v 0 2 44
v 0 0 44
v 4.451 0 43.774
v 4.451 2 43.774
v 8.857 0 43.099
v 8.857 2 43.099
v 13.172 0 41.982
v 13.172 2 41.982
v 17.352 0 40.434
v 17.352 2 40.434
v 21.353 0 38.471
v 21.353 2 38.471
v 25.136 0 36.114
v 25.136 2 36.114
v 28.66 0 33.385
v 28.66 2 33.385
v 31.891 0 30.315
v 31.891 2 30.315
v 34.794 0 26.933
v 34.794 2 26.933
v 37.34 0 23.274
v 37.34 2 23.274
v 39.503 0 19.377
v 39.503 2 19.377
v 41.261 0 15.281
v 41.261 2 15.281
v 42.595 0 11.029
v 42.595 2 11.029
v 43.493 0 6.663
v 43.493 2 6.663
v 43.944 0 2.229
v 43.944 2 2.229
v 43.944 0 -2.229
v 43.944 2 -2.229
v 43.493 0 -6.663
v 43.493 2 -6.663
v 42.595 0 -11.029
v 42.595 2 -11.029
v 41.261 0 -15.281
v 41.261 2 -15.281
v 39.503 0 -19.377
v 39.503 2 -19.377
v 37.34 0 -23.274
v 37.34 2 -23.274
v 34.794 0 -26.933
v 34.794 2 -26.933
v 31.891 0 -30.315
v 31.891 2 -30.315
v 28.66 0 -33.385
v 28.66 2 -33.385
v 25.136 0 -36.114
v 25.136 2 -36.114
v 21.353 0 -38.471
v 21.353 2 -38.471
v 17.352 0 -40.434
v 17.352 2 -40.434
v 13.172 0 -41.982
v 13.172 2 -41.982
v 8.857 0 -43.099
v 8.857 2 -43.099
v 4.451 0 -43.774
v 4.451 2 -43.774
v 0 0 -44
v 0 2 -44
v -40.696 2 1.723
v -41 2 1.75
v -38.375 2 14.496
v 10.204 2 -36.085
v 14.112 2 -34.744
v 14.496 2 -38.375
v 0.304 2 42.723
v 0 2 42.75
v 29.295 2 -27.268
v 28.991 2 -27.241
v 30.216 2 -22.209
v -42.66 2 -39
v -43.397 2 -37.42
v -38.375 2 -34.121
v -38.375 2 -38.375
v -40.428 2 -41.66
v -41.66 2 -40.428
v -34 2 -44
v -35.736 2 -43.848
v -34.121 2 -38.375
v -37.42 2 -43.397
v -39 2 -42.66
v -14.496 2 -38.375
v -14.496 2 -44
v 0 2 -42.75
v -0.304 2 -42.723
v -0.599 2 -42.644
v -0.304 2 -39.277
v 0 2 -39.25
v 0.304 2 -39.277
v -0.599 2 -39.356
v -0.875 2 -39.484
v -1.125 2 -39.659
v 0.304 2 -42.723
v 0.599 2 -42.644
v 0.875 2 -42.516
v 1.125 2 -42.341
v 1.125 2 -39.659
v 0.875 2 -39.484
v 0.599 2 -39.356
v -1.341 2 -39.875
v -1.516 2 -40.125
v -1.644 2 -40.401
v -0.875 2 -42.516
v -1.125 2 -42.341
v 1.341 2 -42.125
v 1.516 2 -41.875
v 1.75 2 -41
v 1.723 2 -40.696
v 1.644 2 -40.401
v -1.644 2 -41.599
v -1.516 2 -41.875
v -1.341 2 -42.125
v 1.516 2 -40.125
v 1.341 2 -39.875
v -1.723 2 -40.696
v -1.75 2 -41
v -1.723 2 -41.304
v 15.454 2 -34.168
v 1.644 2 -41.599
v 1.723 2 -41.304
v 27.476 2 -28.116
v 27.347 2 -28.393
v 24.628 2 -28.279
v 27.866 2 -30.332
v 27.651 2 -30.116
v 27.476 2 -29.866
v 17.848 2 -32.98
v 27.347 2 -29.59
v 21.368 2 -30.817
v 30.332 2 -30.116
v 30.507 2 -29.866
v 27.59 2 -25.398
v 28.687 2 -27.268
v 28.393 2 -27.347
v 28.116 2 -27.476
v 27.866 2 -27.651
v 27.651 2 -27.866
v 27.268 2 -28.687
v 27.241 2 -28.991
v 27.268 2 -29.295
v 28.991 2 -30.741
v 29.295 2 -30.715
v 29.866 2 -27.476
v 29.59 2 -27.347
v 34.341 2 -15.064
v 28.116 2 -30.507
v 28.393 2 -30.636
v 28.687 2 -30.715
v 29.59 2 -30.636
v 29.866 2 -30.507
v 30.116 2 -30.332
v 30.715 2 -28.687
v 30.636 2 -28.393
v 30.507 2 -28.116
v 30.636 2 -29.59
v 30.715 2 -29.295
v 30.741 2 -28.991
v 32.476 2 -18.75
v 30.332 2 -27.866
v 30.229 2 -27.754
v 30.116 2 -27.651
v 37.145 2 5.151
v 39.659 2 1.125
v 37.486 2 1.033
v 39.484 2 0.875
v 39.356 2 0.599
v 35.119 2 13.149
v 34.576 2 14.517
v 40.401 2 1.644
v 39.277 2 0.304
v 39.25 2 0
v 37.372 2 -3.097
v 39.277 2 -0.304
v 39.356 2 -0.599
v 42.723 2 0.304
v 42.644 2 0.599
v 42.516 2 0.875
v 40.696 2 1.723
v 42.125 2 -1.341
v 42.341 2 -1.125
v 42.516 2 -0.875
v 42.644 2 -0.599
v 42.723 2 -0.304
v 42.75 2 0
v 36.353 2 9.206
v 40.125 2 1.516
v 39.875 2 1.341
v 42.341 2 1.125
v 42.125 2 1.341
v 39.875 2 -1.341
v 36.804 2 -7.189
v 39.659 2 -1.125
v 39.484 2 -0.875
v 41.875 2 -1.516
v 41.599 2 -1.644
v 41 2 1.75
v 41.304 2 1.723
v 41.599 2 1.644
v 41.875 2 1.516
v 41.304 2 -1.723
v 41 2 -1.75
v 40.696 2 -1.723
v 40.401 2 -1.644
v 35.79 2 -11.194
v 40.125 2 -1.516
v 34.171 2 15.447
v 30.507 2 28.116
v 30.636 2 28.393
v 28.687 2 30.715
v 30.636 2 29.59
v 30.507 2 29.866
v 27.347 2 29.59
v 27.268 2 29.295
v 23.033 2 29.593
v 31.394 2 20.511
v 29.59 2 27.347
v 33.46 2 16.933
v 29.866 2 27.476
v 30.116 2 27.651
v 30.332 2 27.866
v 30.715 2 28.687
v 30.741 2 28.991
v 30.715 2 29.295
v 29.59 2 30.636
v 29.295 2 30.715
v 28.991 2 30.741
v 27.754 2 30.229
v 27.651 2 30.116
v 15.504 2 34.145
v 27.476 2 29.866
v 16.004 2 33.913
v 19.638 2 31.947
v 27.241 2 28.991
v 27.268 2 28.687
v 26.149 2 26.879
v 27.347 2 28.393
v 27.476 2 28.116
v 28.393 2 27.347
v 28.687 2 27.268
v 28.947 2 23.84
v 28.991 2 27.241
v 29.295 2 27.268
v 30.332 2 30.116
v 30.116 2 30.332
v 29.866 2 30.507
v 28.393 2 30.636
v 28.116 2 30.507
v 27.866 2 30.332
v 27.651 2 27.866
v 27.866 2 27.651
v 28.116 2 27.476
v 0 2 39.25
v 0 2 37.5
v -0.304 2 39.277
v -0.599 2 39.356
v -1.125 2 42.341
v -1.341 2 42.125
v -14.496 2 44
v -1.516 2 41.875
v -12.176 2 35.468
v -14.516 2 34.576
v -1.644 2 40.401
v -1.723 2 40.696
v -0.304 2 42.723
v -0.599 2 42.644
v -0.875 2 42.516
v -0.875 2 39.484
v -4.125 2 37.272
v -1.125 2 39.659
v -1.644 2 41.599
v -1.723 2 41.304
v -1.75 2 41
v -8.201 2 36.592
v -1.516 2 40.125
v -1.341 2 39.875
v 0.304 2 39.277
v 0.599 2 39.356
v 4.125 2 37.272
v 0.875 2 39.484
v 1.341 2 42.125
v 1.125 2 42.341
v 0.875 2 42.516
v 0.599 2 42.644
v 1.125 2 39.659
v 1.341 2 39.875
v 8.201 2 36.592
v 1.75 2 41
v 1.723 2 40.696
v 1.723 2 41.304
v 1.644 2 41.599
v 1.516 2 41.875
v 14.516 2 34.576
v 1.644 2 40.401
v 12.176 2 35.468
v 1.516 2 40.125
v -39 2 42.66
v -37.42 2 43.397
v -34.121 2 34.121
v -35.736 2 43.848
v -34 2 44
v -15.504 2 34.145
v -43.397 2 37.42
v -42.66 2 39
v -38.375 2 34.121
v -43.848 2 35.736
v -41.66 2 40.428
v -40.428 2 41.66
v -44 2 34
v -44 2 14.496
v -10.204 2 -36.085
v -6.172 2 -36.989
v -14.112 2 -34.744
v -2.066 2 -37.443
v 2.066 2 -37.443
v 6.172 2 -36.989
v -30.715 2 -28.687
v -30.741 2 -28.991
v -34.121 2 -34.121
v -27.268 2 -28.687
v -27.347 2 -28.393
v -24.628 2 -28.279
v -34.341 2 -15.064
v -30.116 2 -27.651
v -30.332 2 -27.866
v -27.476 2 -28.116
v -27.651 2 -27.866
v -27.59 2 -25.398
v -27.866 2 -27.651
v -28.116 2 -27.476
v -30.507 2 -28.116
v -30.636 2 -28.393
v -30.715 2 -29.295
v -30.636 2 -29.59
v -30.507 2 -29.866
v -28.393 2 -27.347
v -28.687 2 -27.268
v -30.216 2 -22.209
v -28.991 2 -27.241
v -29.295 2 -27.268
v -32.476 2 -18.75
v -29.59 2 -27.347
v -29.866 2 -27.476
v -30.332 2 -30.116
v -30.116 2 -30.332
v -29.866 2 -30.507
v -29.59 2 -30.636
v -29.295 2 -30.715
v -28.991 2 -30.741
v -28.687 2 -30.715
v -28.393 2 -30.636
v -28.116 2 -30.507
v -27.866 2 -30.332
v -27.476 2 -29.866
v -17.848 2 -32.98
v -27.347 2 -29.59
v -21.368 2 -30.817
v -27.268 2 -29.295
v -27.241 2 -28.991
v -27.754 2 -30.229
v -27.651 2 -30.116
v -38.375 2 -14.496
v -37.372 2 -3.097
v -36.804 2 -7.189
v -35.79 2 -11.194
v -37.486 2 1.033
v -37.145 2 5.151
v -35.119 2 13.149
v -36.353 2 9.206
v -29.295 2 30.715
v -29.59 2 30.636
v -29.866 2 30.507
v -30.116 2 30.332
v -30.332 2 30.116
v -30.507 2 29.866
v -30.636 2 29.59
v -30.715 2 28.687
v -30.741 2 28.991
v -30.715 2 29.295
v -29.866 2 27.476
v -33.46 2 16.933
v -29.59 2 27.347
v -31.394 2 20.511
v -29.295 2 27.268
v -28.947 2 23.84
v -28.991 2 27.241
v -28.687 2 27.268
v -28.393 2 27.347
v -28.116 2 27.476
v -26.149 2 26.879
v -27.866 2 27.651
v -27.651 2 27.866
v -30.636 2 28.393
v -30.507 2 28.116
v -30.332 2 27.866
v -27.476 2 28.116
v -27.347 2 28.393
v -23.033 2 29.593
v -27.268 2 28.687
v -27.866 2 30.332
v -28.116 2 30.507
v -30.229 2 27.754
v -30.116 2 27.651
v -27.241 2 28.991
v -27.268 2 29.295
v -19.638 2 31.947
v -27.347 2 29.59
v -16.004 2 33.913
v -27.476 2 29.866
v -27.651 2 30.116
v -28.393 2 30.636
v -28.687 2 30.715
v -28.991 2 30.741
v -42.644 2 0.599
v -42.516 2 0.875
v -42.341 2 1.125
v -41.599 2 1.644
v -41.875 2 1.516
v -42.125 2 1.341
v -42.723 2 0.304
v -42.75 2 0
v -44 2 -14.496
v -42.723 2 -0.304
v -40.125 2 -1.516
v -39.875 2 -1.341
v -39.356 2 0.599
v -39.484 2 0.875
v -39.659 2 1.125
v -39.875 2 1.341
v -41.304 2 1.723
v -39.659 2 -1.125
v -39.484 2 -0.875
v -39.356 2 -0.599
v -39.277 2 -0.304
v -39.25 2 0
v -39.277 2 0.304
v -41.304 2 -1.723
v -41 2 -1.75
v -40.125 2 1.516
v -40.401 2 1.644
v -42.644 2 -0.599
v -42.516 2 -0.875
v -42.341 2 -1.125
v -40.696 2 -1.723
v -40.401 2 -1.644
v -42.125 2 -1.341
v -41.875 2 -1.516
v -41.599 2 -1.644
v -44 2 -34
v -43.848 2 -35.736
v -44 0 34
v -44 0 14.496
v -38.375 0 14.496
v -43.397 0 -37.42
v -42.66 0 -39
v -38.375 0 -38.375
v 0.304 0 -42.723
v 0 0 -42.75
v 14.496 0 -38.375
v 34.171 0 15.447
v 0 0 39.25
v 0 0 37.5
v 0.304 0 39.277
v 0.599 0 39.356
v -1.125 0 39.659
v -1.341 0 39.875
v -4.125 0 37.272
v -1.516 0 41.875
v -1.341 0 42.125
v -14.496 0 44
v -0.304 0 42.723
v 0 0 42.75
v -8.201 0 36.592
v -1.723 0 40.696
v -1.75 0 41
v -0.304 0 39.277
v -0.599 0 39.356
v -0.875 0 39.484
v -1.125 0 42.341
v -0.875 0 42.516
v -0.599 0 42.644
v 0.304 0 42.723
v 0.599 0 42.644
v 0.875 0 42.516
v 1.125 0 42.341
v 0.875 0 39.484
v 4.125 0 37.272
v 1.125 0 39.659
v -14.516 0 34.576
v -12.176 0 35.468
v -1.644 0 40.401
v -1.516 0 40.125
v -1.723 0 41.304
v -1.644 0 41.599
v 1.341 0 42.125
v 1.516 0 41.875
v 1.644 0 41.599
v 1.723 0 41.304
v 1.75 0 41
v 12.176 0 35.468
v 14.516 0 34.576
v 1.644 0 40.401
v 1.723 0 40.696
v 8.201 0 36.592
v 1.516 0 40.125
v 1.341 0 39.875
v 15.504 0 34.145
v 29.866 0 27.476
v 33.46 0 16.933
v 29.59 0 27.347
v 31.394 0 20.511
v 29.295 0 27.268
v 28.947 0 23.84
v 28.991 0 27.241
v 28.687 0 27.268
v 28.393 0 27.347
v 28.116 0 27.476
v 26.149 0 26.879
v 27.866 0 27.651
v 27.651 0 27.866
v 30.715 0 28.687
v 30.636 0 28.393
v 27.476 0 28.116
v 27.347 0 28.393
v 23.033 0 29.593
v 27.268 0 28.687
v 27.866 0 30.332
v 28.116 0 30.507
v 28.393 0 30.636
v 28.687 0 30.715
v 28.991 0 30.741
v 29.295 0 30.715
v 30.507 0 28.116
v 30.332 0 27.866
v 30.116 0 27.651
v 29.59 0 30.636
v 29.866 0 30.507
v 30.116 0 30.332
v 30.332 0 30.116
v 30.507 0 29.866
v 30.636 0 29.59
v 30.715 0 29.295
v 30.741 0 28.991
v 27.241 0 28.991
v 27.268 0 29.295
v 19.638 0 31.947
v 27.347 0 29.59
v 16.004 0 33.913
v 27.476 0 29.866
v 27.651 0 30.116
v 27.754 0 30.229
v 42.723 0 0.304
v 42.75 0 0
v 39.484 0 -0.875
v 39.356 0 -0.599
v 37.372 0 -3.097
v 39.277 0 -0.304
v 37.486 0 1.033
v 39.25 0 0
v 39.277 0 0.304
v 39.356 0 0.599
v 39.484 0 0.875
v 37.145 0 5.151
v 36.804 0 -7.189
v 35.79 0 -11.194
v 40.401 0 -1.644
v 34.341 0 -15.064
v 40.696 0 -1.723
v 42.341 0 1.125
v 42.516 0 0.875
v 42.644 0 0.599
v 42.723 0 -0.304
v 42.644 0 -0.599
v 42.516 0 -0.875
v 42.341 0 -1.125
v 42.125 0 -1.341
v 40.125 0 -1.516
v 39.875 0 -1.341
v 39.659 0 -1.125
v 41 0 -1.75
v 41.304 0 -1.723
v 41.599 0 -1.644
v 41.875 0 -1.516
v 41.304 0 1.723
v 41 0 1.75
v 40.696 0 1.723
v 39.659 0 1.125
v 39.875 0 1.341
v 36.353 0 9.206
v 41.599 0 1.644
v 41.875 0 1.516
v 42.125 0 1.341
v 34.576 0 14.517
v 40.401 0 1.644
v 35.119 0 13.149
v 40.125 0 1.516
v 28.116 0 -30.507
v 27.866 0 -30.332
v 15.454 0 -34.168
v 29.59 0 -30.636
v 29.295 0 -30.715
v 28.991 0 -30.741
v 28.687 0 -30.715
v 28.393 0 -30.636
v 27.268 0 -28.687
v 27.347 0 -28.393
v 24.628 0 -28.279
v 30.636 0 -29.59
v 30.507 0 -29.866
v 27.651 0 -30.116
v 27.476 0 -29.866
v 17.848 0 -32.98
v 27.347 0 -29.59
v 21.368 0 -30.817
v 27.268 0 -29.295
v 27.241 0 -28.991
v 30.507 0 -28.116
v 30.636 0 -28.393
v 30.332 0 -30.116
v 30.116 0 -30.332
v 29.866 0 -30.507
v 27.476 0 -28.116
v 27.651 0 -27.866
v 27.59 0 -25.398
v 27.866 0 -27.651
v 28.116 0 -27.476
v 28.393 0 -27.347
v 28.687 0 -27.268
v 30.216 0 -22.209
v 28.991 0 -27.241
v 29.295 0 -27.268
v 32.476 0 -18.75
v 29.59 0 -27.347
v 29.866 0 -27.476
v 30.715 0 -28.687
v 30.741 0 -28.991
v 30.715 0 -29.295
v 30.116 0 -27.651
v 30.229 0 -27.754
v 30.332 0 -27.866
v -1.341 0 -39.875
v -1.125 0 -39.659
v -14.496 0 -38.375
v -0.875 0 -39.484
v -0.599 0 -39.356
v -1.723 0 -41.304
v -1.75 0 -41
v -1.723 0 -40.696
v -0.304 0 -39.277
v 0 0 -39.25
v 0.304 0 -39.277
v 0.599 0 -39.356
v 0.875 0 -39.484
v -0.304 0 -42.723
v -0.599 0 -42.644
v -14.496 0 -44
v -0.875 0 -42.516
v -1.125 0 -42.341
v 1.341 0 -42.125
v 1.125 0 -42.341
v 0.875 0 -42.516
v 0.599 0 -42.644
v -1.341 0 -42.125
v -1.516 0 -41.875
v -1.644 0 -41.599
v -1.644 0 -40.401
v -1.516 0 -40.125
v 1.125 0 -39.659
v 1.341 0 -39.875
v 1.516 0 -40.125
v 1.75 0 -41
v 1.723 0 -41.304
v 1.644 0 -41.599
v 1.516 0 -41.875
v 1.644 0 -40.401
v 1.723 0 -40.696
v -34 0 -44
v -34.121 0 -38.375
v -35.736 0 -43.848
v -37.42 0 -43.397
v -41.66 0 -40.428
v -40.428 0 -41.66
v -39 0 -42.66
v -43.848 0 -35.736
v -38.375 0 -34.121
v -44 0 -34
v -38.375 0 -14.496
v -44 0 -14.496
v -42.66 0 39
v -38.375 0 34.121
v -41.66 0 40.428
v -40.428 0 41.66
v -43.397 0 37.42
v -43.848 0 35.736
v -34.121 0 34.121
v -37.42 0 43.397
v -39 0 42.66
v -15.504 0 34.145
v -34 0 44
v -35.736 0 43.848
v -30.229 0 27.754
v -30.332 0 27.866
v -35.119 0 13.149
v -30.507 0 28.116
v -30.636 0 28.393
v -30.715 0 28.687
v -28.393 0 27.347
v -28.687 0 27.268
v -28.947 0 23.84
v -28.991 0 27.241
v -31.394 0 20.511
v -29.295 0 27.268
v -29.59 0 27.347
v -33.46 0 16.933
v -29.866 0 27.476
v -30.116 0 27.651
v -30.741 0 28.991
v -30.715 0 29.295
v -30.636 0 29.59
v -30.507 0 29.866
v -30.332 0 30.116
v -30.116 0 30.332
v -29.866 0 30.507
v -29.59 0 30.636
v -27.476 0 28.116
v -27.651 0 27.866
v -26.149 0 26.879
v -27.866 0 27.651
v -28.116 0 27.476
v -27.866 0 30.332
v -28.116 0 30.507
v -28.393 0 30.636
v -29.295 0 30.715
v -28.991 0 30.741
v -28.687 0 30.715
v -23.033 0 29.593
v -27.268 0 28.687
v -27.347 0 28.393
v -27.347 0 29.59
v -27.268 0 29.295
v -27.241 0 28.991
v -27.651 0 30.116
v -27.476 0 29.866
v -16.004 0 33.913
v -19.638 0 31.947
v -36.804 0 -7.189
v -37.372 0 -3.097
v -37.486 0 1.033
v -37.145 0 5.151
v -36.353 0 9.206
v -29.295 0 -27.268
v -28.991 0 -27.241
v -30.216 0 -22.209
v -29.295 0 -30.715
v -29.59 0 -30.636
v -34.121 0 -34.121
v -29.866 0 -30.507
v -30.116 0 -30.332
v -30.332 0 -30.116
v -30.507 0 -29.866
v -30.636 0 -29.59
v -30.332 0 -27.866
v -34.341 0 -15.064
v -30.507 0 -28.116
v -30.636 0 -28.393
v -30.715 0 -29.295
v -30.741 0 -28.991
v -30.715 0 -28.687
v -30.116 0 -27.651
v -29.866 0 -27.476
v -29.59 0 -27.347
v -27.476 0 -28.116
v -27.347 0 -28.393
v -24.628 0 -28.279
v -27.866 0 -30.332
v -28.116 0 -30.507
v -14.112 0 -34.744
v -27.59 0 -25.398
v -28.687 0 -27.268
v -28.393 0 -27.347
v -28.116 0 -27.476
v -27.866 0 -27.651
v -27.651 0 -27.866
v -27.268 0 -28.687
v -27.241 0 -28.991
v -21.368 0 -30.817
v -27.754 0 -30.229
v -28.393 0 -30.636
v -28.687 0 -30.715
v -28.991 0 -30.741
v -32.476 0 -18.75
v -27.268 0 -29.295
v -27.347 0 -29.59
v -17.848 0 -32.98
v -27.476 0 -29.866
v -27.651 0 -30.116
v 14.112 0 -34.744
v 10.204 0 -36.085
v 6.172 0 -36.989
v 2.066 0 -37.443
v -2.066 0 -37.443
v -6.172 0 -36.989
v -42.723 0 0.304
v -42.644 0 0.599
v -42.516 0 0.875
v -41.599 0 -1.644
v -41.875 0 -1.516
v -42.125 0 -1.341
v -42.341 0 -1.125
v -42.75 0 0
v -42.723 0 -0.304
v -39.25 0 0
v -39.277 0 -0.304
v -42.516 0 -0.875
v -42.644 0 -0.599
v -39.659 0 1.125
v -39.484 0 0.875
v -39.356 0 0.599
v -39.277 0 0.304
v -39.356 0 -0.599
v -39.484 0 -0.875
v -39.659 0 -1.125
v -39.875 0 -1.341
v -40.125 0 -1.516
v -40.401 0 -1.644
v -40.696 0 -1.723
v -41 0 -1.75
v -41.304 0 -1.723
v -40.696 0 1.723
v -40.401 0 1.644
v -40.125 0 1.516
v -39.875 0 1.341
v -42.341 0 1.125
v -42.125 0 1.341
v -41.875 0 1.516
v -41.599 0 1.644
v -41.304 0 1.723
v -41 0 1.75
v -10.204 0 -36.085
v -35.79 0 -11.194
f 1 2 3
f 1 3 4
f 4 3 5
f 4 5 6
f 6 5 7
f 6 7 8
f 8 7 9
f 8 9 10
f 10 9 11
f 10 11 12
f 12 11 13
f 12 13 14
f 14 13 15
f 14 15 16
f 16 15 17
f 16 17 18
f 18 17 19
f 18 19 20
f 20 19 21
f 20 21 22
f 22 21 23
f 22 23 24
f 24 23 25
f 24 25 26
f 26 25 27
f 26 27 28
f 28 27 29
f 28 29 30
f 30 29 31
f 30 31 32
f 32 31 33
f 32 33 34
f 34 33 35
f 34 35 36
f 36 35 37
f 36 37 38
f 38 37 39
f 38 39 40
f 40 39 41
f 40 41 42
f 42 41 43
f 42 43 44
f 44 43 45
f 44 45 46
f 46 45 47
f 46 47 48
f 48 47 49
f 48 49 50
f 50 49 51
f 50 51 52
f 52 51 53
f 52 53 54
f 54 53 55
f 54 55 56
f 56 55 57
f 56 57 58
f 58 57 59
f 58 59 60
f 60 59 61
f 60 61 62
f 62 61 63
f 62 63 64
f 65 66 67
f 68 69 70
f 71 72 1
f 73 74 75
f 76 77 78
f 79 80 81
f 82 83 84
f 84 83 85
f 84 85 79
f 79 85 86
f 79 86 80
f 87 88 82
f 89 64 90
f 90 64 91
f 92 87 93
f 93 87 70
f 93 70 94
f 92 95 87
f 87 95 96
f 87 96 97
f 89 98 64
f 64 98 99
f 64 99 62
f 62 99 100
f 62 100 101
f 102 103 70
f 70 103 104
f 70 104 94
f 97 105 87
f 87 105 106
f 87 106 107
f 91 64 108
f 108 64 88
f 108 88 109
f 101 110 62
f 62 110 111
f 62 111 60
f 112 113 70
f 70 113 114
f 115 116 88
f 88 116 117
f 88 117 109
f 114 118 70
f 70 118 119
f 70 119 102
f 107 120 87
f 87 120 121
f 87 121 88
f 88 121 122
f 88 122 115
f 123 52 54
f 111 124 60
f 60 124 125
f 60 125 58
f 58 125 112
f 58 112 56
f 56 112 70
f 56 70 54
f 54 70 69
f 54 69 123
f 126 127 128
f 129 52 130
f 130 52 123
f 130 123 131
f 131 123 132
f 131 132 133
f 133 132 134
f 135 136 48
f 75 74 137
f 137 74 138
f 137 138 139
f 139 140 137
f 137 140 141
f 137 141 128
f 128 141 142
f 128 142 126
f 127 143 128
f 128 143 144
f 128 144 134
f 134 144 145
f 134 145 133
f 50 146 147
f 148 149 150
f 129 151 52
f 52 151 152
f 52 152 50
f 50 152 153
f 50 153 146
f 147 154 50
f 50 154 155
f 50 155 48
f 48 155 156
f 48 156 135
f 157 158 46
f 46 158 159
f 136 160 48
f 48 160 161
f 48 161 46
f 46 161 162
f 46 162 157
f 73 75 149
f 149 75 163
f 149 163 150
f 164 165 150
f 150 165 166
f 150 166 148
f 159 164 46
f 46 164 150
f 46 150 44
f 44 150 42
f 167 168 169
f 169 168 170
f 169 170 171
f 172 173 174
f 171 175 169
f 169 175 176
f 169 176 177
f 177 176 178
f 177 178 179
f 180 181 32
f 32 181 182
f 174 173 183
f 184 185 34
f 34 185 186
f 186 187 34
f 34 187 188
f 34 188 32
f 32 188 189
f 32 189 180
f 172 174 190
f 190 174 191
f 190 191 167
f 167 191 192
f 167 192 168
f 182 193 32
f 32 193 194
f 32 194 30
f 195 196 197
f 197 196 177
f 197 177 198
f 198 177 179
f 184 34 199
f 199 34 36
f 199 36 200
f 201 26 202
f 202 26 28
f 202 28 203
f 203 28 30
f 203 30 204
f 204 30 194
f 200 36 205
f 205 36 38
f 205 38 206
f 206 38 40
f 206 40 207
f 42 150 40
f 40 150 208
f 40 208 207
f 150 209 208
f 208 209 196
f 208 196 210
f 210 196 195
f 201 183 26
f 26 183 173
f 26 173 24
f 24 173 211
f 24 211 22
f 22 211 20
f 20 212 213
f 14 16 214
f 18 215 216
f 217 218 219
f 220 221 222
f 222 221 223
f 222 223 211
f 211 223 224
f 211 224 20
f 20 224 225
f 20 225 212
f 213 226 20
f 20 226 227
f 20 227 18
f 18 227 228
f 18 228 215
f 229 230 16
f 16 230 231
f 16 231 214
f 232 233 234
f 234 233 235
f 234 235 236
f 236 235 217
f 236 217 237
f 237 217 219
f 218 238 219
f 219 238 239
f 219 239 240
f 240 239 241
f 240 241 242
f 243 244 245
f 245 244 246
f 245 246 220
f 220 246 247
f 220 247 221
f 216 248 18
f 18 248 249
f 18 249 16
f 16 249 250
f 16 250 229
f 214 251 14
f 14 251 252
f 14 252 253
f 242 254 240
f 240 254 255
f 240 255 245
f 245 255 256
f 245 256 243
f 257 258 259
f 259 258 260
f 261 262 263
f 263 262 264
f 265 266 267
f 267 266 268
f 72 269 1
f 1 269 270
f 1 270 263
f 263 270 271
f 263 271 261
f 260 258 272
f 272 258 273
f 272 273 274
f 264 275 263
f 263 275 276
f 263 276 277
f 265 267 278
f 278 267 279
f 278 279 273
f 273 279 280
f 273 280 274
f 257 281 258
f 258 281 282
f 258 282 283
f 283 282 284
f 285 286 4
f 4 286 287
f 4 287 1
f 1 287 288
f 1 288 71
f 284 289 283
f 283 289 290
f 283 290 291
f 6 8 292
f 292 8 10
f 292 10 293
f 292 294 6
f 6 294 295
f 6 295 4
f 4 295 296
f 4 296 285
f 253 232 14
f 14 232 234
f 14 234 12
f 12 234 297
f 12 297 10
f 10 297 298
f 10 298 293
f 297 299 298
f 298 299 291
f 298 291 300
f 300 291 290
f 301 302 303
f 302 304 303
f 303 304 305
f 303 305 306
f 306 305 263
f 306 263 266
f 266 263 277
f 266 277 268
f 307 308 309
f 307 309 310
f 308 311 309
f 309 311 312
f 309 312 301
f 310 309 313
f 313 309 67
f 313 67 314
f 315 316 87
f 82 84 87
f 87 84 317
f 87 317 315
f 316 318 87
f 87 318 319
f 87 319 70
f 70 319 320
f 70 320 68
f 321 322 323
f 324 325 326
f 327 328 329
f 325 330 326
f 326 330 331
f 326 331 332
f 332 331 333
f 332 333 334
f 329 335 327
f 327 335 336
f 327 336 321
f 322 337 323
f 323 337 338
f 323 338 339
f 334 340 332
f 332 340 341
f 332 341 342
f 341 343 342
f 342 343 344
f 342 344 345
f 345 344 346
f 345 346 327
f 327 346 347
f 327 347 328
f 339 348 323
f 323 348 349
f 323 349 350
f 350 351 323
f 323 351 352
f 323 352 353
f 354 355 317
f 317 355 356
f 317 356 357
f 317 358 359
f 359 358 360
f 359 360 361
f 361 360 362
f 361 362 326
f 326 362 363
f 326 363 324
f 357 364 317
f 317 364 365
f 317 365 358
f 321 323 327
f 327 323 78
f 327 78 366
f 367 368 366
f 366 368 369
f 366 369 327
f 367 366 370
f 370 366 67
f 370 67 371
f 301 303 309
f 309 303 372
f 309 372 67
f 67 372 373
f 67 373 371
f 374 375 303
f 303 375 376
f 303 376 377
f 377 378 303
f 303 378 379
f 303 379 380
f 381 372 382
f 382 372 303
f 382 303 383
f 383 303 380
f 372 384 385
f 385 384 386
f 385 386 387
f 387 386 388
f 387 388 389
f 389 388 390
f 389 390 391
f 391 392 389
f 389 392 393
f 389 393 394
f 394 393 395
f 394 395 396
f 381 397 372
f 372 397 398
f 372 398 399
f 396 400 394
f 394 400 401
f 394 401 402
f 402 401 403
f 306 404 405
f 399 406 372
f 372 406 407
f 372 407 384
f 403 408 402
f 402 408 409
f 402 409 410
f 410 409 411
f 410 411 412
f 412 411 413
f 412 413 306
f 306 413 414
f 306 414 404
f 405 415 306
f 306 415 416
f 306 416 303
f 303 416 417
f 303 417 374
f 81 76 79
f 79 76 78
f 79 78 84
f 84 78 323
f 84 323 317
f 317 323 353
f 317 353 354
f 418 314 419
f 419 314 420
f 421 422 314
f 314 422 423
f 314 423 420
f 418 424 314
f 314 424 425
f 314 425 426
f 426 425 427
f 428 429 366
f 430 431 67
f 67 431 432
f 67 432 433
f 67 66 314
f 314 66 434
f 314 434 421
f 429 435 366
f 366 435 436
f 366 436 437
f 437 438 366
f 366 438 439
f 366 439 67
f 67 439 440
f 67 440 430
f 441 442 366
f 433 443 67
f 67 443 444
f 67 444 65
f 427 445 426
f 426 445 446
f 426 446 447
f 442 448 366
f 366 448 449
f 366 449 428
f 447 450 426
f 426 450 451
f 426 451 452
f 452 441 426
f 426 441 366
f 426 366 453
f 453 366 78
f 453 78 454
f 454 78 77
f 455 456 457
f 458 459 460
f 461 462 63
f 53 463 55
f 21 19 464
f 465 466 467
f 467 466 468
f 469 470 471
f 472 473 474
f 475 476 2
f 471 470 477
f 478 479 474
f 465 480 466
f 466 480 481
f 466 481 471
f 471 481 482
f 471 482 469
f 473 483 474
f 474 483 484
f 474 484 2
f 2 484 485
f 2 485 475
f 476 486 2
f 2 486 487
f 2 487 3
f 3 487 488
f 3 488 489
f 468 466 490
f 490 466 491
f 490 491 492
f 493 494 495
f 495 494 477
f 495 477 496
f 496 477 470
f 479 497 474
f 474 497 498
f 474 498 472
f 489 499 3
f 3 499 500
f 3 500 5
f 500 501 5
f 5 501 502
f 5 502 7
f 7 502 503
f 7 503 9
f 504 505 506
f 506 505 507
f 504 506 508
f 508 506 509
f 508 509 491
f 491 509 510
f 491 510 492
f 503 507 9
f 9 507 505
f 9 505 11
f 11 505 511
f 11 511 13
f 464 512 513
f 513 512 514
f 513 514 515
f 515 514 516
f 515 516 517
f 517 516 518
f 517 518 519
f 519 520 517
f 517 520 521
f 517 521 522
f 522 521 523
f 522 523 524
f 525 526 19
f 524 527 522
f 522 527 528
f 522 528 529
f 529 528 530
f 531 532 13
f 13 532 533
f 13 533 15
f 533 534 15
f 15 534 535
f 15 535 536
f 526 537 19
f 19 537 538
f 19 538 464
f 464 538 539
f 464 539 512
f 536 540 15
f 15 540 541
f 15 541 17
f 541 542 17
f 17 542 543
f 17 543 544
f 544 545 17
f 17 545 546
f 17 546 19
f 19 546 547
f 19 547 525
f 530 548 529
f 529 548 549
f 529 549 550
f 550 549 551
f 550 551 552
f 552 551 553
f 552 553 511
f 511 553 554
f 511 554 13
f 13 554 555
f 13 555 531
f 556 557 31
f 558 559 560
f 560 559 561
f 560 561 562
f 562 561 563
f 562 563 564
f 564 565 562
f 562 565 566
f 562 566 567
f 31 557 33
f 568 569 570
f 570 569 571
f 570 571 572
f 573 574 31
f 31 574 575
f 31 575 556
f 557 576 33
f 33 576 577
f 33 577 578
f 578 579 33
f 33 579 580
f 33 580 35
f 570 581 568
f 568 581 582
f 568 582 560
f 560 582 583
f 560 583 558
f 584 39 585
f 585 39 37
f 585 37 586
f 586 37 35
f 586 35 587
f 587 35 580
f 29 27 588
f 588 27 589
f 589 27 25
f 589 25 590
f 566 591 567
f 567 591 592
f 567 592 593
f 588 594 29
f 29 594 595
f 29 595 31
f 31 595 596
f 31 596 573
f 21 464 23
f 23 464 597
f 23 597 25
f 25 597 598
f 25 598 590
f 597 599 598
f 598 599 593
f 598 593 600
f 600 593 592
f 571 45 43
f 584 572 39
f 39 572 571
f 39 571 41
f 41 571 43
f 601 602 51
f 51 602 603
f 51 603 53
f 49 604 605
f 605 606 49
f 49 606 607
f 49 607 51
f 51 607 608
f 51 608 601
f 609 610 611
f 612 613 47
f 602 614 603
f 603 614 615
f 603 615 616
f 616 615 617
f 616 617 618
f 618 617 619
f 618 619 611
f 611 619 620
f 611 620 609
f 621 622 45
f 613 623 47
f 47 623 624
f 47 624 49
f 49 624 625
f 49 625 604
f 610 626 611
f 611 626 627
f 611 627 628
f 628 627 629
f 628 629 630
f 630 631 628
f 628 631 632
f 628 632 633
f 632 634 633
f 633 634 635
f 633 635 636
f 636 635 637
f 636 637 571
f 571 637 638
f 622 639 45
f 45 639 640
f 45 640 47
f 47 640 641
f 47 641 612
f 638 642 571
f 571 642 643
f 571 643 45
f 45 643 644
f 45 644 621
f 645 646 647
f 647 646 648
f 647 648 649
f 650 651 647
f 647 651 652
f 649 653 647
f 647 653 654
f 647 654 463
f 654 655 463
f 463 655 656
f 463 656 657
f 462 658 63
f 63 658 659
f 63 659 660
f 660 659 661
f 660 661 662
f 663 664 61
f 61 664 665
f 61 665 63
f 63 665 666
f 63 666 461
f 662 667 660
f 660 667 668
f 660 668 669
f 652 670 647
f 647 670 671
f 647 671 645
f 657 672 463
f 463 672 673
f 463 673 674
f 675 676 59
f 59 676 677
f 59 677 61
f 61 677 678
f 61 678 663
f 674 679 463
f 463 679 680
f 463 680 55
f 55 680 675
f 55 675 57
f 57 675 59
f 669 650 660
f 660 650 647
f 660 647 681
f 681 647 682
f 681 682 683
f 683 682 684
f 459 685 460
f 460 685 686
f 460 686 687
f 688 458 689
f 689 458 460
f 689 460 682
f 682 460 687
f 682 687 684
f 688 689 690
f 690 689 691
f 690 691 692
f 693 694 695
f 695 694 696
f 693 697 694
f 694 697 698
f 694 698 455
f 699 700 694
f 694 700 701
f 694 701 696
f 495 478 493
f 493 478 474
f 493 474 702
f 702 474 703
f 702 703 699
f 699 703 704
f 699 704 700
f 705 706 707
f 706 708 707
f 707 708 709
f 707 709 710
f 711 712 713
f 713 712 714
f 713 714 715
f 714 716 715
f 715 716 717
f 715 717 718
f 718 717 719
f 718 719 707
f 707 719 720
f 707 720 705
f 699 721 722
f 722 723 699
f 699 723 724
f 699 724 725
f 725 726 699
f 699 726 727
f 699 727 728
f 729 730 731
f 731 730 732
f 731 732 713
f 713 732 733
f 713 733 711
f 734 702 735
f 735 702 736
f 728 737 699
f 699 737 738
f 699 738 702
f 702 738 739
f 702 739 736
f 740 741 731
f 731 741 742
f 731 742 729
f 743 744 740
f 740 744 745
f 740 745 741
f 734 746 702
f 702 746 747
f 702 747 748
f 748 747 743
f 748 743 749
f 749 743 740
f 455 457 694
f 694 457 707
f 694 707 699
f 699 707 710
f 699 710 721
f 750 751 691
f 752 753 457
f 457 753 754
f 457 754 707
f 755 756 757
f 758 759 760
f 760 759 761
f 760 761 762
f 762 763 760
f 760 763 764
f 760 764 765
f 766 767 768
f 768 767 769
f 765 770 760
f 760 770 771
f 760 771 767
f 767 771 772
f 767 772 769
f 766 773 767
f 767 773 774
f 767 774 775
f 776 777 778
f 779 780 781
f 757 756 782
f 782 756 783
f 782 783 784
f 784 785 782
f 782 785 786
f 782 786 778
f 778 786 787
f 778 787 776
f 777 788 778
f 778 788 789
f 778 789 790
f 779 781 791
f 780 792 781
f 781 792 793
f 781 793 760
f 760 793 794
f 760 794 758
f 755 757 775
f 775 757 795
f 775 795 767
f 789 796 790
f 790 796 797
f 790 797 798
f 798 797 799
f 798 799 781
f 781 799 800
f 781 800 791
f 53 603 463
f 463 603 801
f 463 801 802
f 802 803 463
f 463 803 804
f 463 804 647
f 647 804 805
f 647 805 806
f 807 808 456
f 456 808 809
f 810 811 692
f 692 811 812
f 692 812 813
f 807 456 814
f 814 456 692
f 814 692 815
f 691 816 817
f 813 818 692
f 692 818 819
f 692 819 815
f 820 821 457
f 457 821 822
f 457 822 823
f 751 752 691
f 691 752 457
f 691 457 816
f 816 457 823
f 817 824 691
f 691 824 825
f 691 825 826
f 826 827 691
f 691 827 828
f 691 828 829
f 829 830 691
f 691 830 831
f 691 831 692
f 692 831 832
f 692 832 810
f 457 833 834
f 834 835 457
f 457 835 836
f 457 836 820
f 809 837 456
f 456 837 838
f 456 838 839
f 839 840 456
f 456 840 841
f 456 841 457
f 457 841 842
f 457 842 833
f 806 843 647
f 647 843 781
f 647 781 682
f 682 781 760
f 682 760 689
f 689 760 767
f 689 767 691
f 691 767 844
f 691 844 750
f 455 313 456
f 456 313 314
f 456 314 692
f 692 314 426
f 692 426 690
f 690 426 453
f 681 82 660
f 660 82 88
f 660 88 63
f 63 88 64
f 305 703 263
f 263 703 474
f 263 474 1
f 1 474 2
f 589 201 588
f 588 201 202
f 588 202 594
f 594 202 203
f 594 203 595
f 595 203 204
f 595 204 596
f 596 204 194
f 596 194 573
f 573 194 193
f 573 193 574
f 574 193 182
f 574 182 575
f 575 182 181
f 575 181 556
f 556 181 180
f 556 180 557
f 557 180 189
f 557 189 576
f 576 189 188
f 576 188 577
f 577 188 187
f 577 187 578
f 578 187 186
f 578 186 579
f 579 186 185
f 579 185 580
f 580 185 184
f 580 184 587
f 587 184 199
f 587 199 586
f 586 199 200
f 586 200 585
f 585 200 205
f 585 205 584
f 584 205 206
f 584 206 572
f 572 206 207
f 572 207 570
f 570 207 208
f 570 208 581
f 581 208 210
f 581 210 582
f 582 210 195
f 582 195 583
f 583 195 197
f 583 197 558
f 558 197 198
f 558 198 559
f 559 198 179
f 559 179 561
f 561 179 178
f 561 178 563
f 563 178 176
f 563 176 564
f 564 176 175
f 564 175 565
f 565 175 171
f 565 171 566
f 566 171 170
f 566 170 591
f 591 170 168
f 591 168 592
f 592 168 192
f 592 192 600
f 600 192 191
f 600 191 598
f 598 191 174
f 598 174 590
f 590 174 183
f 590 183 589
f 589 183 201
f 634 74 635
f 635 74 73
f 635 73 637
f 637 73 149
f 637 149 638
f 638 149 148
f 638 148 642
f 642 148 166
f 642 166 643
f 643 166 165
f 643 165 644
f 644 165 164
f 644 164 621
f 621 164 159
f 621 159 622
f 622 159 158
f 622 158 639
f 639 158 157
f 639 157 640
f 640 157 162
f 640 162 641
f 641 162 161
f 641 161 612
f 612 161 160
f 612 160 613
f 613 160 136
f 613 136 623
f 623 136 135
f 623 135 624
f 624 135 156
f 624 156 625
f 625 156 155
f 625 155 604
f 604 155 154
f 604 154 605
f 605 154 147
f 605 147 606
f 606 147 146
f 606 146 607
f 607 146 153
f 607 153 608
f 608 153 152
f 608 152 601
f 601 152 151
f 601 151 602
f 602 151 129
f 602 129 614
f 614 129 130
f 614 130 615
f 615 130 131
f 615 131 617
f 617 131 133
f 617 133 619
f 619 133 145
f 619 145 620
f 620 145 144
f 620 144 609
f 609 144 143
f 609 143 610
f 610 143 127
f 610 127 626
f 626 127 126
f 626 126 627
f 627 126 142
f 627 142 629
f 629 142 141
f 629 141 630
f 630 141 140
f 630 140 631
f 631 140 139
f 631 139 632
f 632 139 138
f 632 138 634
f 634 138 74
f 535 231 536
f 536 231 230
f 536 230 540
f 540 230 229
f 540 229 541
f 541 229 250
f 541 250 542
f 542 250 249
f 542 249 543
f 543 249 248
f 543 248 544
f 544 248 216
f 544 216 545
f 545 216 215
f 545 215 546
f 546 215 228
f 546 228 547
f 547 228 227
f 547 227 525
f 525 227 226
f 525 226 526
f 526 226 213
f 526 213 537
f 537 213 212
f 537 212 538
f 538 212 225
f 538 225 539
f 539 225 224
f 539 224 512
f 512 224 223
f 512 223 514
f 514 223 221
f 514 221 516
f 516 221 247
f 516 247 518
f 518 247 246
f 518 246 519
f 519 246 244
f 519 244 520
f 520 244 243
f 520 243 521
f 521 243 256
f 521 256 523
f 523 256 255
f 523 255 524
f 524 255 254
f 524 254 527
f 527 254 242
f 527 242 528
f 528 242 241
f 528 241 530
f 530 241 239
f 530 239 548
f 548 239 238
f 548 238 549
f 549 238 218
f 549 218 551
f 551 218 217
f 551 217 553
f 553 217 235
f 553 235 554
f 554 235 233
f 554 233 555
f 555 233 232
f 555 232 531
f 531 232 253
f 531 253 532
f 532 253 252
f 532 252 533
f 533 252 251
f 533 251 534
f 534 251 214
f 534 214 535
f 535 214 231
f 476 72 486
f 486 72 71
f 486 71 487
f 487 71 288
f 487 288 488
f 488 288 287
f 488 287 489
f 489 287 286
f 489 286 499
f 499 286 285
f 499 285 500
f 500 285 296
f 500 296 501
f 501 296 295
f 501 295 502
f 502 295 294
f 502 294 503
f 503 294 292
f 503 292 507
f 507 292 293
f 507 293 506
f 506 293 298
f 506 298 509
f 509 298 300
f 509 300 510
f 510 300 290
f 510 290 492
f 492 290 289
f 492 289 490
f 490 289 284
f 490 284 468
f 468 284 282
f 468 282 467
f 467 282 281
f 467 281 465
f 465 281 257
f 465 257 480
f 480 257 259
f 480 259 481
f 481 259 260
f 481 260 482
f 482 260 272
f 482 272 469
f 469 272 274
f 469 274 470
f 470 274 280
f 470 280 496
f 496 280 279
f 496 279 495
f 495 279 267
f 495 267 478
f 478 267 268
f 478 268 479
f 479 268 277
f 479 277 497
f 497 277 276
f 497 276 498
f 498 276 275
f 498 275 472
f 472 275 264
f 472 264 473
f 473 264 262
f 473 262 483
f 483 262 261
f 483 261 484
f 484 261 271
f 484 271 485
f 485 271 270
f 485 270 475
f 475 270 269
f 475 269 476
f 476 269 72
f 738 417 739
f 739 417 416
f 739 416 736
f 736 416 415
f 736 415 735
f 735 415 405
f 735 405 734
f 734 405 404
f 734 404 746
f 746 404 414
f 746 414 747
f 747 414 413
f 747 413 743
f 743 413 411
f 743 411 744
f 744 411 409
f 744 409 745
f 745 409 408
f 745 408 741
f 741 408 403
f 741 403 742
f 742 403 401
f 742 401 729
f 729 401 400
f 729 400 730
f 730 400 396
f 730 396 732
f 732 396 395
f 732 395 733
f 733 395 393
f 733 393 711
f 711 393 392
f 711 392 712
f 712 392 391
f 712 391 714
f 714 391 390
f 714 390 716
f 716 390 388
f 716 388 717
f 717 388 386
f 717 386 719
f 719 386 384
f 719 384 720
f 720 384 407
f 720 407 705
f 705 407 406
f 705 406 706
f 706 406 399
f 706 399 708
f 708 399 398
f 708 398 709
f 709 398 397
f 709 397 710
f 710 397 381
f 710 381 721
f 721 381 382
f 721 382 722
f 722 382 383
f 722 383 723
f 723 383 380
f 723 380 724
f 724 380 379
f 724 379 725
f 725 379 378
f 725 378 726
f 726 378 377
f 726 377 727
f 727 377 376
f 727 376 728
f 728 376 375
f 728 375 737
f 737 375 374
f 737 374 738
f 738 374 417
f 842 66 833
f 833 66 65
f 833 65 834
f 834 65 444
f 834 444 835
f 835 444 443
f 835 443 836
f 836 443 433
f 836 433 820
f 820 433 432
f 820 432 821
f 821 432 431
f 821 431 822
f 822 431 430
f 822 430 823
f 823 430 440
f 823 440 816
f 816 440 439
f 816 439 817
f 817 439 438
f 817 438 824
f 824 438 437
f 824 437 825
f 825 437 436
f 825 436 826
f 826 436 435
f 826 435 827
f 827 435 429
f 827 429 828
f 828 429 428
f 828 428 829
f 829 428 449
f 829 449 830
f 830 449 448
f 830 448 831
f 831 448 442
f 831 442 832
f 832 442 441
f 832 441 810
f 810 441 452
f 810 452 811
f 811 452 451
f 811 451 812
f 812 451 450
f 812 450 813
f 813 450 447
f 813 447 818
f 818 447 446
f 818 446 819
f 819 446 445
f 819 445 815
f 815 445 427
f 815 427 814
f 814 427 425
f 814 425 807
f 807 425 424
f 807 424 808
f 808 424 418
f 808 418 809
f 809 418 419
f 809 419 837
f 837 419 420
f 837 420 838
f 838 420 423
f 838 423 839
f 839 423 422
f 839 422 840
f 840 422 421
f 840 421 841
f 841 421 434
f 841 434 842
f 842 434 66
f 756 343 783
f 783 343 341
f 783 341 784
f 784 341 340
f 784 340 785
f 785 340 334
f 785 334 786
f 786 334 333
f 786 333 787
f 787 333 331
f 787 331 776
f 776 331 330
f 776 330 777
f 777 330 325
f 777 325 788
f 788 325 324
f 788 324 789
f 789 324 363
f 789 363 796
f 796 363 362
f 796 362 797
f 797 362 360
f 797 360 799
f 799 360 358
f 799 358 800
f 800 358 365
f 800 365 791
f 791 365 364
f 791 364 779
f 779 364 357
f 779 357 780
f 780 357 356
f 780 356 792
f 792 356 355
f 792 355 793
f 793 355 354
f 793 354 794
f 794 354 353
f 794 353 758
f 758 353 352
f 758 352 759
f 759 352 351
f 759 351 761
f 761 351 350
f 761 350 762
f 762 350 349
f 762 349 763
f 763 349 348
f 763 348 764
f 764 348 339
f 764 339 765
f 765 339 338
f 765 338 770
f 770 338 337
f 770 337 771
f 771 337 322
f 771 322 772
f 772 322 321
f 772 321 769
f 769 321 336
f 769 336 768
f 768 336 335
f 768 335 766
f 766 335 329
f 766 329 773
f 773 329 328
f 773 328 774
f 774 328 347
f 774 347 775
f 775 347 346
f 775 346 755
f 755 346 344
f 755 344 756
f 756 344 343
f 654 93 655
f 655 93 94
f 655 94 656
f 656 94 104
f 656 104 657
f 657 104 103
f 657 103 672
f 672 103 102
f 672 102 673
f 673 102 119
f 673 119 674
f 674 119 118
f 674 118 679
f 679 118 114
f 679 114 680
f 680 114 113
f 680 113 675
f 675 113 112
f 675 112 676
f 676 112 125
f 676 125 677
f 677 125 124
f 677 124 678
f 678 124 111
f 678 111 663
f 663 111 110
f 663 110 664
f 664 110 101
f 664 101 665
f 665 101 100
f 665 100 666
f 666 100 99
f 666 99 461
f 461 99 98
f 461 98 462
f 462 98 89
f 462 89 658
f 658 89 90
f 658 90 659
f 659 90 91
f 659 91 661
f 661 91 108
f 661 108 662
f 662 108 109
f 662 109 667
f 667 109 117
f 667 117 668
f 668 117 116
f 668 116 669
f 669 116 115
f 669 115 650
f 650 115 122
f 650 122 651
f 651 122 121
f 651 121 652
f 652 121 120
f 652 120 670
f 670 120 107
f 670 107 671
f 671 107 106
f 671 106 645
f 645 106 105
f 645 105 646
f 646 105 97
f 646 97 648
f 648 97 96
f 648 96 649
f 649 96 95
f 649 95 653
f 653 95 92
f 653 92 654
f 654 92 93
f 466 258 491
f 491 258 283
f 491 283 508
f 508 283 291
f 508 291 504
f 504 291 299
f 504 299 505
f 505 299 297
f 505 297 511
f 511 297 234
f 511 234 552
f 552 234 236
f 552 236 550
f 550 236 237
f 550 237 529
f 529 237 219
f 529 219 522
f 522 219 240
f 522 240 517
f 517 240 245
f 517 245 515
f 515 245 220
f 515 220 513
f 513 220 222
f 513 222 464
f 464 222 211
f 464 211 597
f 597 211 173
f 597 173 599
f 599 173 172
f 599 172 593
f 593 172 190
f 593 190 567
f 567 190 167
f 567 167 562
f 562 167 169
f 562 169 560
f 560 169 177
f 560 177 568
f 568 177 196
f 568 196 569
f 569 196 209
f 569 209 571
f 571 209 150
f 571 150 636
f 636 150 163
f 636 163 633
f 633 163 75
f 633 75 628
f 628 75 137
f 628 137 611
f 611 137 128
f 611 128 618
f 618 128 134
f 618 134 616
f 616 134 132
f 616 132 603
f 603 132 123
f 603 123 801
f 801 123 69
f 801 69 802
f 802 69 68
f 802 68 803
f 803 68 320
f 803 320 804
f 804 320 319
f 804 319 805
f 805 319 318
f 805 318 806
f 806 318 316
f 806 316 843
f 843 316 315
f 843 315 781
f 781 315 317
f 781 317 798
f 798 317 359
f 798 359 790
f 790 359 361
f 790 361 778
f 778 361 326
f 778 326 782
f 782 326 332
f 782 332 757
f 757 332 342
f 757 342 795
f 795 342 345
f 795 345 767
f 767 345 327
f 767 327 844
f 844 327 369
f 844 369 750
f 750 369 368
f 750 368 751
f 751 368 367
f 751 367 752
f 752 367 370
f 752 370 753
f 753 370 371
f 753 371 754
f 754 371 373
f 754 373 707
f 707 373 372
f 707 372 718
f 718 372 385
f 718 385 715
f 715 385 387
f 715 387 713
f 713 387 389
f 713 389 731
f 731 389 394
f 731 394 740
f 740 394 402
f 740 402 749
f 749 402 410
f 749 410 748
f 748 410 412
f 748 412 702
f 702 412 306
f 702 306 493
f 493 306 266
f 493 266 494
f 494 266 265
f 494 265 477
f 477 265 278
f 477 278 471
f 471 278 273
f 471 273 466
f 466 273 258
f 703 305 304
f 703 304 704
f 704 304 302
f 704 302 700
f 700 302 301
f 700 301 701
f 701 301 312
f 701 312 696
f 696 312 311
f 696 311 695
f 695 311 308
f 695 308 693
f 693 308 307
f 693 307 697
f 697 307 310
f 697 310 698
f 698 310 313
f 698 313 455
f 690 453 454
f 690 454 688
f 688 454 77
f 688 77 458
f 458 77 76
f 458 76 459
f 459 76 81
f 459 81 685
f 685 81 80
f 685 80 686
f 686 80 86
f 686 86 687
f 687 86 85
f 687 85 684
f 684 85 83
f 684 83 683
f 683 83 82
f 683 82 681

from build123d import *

# Parameters (mm, degrees)
SKETCH1_R           = 44
BOSS_EXTRUDE1_DEPTH = 2
SKETCH2_W           = 44
SKETCH2_H           = 88
BOSS_EXTRUDE2_DEPTH = 2
SKETCH3_R           = 1.75
CUT_EXTRUDE1_DEPTH  = 3
CIRPATTERN1_COUNT   = 8
SKETCH4_R           = 37.5
CUT_EXTRUDE2_DEPTH  = 3
FILLET1_R           = 10


with BuildPart() as part:
    # Sketch1 → Boss-Extrude1 (new body)
    with BuildSketch(Plane(origin=(0, 0, 0), x_dir=(1, 0, 0), z_dir=(0, 1, 0))):
        Circle(SKETCH1_R)
    extrude(amount=BOSS_EXTRUDE1_DEPTH)

    # Sketch2 → Boss-Extrude2 (add)
    with BuildSketch(Plane(origin=(0, 2, 0), x_dir=(1, 0, 0), z_dir=(0, 1, 0))):
        with Locations((-22, 0)):
            Rectangle(SKETCH2_W, SKETCH2_H)
    extrude(amount=-BOSS_EXTRUDE2_DEPTH)

    # Sketch3 → Cut-Extrude1 (cut, through all)
    with BuildSketch(Plane(origin=(0, 2, 0), x_dir=(1, 0, 0), z_dir=(0, 1, 0))):
        with Locations((41, 0)):
            Circle(SKETCH3_R)
    cut_extrude1 = extrude(amount=-CUT_EXTRUDE1_DEPTH, mode=Mode.SUBTRACT)

    # CirPattern1: Cut-Extrude1 ×8 about axis
    cirpattern1_axis = Axis((0, 0, 0), (0, 1, 0))
    for i in range(1, CIRPATTERN1_COUNT):
        add(cut_extrude1.rotate(cirpattern1_axis, i * 360 / CIRPATTERN1_COUNT), mode=Mode.SUBTRACT)

    # Sketch4 → Cut-Extrude2 (cut, through all)
    with BuildSketch(Plane(origin=(0, 2, 0), x_dir=(1, 0, 0), z_dir=(0, 1, 0))):
        Circle(SKETCH4_R)
    extrude(amount=-CUT_EXTRUDE2_DEPTH, mode=Mode.SUBTRACT)

    # Fillet1
    fillet1_edges = [part.edges().sort_by_distance(p)[0] for p in [
        (-44, 1, 44),
        (-44, 1, -44),
    ]]
    fillet(fillet1_edges, radius=FILLET1_R)


solid = part.part
